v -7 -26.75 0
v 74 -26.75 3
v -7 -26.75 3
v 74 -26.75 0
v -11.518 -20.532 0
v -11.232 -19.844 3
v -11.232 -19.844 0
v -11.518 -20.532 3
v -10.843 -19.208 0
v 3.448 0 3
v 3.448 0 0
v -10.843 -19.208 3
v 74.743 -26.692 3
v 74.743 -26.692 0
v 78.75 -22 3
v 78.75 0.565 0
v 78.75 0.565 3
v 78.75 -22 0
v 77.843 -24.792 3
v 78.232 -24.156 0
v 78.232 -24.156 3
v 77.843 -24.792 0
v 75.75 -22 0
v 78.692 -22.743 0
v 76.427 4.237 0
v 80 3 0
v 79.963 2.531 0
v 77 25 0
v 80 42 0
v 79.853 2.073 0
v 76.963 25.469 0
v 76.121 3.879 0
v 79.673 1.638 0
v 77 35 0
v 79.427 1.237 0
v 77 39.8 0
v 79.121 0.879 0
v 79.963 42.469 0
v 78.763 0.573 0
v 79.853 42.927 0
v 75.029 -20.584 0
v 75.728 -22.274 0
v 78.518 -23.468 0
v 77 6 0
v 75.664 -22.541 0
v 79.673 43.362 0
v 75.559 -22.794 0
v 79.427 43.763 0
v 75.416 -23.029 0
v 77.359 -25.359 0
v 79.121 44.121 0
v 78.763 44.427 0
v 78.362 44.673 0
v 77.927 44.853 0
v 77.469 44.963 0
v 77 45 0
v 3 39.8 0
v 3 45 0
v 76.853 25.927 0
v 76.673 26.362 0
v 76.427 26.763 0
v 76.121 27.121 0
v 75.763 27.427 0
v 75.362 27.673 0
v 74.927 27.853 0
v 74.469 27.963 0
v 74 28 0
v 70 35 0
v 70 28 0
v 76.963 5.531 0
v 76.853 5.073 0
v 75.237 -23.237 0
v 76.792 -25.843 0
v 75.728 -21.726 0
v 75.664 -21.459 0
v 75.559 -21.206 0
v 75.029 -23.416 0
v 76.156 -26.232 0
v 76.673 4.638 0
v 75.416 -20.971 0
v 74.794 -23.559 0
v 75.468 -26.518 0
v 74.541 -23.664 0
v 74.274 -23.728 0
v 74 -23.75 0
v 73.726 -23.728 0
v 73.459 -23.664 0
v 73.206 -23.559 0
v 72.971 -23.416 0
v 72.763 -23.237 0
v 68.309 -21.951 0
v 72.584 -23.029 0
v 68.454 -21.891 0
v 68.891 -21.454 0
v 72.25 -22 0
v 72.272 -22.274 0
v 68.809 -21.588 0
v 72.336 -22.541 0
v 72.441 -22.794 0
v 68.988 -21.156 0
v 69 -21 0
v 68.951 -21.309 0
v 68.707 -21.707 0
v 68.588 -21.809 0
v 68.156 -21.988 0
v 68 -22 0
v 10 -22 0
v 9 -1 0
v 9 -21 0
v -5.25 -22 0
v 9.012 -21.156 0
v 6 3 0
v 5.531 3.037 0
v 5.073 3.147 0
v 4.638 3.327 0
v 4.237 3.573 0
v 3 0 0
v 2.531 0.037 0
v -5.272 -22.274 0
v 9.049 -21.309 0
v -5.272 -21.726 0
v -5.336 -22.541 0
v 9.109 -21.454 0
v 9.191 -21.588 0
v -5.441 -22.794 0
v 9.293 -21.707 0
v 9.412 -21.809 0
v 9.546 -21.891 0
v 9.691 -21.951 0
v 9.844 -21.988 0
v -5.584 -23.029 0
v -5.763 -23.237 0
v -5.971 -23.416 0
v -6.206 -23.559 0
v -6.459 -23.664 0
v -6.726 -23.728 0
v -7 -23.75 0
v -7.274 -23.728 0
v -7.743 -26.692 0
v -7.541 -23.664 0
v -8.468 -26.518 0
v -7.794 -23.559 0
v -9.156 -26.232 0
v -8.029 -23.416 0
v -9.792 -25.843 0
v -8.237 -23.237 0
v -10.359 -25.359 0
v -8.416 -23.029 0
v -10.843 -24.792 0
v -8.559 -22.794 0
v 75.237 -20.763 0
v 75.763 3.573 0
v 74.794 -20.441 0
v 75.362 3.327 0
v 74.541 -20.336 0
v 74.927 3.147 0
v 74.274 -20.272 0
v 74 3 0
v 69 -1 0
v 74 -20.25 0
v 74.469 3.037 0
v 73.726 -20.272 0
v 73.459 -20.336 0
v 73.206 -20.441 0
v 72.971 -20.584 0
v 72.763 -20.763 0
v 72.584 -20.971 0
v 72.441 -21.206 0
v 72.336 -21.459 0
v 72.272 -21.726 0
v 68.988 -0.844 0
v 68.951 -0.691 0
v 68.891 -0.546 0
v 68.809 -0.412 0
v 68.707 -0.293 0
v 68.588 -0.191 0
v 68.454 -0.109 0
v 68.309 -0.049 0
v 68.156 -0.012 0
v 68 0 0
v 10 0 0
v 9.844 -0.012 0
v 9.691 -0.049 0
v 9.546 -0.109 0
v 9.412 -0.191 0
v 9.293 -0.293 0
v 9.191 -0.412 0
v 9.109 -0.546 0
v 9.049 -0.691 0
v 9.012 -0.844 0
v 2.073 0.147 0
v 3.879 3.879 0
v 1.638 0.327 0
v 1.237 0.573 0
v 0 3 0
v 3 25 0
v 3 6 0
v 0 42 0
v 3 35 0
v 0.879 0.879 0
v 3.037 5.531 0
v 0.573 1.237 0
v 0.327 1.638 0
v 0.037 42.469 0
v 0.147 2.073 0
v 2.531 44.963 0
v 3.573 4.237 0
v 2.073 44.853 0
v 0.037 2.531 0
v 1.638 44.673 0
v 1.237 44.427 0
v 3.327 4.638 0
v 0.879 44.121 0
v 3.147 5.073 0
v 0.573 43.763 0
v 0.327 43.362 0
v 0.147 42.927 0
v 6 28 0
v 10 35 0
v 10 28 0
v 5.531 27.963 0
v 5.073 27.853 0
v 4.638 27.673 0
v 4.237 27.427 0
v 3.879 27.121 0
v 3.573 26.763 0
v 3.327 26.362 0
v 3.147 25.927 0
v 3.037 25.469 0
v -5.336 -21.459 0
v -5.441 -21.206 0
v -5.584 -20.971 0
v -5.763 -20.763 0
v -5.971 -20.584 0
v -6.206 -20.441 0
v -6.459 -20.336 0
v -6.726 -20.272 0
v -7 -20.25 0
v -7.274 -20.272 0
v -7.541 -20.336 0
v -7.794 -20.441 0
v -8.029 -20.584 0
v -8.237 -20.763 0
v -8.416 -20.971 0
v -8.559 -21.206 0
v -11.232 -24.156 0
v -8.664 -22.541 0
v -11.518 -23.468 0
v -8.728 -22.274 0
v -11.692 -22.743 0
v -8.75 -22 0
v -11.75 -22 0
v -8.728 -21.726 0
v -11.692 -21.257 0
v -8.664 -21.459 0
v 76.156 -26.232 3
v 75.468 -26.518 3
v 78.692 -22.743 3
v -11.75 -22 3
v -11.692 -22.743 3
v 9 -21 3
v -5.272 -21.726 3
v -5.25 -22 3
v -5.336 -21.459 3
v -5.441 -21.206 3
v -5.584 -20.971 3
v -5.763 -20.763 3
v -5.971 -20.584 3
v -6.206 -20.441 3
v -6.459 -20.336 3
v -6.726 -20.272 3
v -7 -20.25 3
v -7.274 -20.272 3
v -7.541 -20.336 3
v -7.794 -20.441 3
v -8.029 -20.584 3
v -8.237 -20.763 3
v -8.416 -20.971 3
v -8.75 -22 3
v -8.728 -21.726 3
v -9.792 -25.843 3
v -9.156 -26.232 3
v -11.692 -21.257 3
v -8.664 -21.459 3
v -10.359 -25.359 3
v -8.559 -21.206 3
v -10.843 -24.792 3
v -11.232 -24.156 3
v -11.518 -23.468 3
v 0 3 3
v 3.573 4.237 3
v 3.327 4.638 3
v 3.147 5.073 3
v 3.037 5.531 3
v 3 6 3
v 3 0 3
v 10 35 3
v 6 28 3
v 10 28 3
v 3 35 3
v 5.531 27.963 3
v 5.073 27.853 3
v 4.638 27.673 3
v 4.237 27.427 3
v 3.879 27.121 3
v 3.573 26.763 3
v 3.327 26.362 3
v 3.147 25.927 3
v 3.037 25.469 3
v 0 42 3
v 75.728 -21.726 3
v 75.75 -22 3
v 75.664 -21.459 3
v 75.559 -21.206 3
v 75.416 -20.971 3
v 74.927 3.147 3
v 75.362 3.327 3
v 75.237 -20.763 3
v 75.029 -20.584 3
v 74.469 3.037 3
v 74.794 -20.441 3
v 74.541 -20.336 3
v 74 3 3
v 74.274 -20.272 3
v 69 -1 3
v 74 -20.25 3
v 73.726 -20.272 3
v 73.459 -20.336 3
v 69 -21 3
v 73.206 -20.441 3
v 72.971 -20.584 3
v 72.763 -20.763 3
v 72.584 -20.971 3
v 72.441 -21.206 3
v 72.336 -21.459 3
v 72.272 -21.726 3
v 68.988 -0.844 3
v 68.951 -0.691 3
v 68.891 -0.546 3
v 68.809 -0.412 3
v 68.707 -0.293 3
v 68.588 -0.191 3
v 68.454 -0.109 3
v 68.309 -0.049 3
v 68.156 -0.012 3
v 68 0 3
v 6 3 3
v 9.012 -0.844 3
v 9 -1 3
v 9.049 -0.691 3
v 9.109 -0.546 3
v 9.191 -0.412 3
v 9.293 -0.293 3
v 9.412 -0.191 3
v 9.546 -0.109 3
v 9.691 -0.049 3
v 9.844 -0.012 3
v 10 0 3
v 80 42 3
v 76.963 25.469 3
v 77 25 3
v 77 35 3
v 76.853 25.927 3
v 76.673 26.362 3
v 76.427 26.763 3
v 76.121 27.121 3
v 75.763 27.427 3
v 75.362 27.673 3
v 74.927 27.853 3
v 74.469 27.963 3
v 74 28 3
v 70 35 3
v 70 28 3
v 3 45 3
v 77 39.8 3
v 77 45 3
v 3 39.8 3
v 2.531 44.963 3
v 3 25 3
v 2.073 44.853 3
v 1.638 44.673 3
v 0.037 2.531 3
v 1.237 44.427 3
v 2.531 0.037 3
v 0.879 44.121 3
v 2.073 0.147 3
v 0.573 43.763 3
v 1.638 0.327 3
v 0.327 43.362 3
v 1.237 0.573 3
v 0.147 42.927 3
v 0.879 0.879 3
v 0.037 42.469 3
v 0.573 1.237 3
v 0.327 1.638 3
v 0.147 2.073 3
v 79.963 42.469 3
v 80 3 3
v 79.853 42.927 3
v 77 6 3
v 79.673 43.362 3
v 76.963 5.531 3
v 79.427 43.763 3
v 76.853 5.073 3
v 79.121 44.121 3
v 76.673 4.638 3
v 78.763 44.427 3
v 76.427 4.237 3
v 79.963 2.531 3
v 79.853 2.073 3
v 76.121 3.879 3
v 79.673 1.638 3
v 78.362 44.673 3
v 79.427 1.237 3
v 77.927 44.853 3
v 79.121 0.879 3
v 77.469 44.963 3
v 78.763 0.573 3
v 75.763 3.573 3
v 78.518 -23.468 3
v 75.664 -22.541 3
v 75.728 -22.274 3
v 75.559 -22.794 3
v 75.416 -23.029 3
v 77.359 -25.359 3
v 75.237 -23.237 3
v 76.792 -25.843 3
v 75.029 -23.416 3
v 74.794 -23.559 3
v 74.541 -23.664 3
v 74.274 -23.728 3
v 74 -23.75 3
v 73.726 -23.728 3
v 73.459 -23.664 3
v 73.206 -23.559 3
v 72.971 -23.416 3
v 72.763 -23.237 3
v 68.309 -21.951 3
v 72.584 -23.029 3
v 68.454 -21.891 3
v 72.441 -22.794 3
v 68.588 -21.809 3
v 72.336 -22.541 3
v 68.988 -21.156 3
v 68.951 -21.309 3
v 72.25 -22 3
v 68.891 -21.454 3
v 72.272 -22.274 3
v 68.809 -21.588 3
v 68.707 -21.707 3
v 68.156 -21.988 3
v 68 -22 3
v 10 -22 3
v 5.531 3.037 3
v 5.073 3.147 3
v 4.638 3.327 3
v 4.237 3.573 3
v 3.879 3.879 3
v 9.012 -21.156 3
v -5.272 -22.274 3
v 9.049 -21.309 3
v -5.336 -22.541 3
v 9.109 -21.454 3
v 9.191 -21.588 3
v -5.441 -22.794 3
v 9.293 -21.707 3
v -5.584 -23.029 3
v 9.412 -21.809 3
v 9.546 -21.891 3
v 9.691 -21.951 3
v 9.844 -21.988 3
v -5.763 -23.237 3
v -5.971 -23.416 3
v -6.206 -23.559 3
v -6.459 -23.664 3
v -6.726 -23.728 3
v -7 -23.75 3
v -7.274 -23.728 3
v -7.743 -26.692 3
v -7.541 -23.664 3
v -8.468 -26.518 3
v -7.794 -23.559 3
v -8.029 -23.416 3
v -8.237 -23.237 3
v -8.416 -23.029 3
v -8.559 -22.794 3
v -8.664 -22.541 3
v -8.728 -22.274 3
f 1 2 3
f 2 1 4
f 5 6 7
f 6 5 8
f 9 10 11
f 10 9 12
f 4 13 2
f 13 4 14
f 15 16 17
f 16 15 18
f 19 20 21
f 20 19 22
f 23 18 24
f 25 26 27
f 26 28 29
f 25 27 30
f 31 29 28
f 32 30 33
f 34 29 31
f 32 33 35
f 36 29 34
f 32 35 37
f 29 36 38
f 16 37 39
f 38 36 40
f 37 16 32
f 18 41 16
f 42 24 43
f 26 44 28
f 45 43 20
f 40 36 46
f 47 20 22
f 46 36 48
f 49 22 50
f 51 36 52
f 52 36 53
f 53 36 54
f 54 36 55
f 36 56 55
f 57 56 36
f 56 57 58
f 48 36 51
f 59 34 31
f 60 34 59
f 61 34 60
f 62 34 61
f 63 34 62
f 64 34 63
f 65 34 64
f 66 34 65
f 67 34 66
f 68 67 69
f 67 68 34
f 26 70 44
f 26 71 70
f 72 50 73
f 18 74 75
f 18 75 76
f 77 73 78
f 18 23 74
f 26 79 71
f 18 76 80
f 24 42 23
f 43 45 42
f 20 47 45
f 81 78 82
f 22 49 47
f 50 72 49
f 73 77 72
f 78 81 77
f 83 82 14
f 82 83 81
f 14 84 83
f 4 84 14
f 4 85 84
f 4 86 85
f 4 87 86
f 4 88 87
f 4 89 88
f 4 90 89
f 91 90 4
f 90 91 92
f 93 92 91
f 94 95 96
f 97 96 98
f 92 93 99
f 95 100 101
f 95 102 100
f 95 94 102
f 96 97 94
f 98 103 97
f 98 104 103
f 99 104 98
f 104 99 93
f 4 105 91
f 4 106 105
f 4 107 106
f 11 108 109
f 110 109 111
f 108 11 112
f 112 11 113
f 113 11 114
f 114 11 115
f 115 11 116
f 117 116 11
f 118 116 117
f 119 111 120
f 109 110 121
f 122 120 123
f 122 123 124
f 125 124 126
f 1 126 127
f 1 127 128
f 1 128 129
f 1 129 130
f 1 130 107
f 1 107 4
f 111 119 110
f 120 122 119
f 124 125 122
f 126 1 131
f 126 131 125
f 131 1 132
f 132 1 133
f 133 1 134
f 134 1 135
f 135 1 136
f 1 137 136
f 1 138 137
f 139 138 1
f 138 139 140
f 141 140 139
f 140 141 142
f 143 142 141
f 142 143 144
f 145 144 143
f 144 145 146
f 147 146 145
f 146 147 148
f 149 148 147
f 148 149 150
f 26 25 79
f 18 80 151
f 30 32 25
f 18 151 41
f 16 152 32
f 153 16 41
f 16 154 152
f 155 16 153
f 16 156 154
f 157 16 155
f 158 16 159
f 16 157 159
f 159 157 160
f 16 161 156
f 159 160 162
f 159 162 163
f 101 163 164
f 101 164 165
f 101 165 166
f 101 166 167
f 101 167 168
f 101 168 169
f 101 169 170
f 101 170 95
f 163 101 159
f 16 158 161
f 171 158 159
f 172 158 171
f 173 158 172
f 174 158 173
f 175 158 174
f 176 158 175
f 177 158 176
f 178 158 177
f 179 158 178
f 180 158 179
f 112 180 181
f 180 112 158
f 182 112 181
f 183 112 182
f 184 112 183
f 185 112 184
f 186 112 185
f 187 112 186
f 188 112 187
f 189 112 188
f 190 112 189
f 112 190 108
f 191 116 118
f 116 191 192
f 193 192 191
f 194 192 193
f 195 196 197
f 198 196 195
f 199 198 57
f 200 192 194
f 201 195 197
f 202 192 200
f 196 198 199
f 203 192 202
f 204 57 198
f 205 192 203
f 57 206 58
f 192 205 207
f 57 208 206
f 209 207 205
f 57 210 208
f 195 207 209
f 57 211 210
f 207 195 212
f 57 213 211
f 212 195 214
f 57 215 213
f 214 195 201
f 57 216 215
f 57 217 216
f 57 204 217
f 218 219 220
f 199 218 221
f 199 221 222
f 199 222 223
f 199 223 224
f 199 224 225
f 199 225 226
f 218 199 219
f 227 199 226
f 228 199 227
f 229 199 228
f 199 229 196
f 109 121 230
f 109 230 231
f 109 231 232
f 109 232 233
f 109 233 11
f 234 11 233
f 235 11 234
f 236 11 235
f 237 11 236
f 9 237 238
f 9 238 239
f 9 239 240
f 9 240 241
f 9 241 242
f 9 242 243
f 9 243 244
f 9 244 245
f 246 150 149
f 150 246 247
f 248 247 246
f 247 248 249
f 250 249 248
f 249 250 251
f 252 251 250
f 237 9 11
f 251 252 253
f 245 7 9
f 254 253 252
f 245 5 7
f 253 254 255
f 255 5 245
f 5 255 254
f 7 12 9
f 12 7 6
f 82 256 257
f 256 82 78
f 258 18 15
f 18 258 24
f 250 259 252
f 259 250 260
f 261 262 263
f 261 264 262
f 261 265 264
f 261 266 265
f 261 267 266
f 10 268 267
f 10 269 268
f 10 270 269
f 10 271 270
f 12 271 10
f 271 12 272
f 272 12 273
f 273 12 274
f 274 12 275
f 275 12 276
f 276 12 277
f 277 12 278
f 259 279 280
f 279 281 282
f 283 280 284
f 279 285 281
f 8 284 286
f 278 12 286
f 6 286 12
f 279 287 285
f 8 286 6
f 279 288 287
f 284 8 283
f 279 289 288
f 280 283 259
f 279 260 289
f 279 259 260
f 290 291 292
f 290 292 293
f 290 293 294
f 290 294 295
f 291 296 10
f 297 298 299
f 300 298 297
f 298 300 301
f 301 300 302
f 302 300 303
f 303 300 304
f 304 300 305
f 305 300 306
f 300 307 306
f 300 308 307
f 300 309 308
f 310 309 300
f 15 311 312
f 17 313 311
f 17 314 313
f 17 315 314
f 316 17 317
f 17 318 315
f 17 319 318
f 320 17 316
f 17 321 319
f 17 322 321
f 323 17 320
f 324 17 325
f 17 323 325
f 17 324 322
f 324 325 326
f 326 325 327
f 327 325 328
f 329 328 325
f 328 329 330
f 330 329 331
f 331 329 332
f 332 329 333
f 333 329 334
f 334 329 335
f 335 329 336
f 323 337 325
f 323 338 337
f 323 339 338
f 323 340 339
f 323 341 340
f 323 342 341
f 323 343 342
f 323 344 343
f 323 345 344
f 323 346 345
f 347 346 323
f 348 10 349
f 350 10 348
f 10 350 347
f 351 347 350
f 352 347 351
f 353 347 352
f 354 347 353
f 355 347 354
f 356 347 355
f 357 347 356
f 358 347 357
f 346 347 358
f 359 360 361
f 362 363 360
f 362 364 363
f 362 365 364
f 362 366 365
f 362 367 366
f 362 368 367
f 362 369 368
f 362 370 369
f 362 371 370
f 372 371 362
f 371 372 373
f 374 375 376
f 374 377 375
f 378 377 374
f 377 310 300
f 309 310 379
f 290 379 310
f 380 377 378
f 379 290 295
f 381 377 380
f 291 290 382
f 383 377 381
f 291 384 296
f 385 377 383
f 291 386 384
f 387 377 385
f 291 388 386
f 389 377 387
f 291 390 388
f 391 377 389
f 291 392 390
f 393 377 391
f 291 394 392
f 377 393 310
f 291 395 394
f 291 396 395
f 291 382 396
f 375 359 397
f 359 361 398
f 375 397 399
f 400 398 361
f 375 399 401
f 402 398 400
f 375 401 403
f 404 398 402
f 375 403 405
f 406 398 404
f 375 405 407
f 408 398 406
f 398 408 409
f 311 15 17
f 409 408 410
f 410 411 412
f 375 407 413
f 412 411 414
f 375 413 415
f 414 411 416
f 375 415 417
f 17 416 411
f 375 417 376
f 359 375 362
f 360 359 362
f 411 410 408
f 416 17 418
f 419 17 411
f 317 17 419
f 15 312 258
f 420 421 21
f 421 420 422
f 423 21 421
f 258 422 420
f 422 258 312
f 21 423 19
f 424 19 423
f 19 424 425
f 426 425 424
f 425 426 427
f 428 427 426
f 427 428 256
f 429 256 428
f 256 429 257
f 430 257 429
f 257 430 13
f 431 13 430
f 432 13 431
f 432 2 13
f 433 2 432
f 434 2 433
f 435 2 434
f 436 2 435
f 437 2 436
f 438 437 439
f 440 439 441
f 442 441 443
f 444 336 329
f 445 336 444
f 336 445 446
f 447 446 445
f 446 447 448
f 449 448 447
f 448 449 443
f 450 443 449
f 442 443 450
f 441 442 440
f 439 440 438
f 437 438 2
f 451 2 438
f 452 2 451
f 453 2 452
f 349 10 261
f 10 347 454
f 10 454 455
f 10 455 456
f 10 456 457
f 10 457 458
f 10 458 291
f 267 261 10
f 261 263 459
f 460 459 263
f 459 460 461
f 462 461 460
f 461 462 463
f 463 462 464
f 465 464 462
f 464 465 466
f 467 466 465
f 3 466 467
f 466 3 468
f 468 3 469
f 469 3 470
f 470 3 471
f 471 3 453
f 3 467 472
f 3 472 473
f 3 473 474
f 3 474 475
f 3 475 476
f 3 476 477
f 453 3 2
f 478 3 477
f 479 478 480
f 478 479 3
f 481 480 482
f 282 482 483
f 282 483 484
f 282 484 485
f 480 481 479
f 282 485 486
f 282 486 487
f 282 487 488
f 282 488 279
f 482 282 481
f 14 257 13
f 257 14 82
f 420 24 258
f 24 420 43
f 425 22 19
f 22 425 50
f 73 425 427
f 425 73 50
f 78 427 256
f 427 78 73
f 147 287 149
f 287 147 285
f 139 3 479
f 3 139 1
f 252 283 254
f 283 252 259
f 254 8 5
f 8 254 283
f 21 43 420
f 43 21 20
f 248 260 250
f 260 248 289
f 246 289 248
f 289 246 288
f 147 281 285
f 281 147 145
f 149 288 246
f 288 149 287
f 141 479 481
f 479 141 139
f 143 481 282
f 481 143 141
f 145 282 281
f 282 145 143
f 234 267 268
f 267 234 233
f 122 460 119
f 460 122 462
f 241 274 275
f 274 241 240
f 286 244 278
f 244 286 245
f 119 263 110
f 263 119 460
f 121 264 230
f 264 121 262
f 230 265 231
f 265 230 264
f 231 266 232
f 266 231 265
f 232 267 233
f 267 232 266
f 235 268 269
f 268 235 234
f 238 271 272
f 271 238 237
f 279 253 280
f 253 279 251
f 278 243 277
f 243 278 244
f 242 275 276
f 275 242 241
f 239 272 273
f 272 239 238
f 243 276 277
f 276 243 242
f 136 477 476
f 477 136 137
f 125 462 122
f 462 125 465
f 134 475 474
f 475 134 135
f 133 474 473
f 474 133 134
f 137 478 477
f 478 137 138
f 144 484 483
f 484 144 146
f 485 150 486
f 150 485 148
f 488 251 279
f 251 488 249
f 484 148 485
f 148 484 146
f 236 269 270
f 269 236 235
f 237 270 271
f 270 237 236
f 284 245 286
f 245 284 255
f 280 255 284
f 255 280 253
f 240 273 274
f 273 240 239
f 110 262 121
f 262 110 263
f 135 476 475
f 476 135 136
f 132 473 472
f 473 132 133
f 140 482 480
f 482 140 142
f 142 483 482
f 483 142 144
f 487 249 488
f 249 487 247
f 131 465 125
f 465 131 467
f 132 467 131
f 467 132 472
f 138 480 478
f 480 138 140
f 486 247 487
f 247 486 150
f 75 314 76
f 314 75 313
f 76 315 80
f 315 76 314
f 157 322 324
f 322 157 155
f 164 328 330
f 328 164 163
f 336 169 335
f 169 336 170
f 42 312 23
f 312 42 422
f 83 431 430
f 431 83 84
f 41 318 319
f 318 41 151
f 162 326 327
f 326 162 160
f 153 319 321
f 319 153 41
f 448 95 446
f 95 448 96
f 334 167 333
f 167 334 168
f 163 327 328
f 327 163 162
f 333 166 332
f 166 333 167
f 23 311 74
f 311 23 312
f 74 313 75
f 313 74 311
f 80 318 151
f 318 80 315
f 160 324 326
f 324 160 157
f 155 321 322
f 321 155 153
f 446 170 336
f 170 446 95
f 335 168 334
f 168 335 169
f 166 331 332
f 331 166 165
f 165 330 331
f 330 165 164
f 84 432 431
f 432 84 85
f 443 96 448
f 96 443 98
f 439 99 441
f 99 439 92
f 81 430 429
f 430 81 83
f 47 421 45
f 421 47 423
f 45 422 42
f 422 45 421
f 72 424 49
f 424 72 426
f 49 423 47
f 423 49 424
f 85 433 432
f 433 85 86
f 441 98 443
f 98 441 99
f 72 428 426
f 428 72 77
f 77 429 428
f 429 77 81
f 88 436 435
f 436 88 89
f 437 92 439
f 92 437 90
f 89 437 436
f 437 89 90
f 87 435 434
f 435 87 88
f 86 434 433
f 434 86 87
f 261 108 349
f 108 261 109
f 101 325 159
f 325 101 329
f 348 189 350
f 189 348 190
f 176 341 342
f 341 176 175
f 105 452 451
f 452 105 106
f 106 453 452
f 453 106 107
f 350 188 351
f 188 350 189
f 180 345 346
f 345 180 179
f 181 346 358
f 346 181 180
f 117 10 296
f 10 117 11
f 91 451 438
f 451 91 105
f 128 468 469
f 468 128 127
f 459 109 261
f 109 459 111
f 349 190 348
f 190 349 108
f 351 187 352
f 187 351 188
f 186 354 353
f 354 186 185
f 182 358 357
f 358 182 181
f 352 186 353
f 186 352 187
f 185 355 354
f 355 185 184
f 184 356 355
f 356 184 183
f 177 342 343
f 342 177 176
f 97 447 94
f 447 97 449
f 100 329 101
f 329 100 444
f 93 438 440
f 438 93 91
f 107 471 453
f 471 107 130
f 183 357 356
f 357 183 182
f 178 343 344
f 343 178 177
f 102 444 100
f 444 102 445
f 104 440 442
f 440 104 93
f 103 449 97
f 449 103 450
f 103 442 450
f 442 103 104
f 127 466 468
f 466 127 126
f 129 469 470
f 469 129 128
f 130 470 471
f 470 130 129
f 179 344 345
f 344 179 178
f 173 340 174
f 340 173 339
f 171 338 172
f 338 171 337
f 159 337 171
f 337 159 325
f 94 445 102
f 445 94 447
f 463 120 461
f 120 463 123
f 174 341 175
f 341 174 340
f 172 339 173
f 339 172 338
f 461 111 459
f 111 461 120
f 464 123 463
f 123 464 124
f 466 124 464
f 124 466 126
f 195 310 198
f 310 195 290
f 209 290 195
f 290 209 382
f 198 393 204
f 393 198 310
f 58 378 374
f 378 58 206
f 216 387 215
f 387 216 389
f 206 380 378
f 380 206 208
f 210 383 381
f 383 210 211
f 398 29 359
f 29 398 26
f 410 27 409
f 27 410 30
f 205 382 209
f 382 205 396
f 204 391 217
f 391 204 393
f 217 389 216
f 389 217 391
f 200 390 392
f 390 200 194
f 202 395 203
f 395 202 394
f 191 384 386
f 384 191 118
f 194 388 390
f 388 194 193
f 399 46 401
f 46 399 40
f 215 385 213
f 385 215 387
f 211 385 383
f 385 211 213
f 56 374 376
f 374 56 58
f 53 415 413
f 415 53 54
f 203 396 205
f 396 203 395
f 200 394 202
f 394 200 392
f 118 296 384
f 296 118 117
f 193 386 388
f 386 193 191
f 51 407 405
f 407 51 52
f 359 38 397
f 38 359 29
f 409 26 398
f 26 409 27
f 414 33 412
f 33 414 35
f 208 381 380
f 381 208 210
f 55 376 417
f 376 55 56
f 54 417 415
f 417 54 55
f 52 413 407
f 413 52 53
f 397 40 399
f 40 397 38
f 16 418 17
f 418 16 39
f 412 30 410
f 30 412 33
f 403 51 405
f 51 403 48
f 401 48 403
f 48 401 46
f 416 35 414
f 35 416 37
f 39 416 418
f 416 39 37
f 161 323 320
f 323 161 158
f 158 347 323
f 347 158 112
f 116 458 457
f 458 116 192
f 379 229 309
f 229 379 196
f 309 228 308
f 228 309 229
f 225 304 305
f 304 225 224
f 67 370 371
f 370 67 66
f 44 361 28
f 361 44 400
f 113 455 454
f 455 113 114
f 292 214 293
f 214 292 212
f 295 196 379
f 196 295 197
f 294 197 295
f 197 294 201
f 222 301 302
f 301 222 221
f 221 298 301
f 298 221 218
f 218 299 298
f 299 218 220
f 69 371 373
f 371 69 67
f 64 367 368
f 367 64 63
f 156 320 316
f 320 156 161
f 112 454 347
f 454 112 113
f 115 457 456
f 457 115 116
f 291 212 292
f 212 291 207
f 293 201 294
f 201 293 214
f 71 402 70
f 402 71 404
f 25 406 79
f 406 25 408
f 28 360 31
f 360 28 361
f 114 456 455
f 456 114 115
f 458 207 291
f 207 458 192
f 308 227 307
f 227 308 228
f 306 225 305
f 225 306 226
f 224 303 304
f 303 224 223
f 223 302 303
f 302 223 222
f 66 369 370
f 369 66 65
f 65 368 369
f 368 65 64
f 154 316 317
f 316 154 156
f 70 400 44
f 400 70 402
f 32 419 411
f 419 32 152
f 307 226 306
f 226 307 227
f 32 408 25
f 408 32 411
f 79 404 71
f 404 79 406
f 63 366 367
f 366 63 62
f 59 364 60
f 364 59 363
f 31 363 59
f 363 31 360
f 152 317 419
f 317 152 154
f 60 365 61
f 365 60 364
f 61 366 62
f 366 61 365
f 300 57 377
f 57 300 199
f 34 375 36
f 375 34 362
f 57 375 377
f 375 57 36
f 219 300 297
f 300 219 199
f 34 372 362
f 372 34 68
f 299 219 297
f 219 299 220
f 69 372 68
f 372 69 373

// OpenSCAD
/**
 * Clamp for spool holder
 */
$fn = 40;
wall = 3;
clamp_x = 74.0;
clamp_y = 45;
clamp_z = 3;
clamp_r = 3;


mount_c2c = 81;
mount_z = 22;
mount_r = 3.5 / 2;

module rcube (x, y, z, r)
{
    hull () {
        translate ([r, r, 0])
        cylinder (r = r, h = z);
        translate ([x - r, r, 0])
        cylinder (r = r, h = z);
        translate ([r, y - r, 0])
        cylinder (r = r, h = z);
        translate ([x - r, y - r, 0])
        cylinder (r = r, h = z);        
    }
}


module m3 () {
    
    cylinder (r = 3.5/2, h = 2 * wall);
}

module relief (h, th) 
{
    hull () {
        cylinder (r = 2, h = th);
        translate ([0, h - 4, 0])
        cylinder (r = 2, h = th);
    }     
}

module cutout () {
    for (i = [0 : 6]) {
        rotate ([90, 0, 0])
        translate ([i * 10, 0, 0])
        relief (20, 4);
    }
}

module cutout2 () {
    for (i = [0 : 5]) {
        rotate ([90, 0, 0])
        translate ([i * 10, 0, 0])
        relief (15, 4);
    }
}

module clamp () {
    
    difference () {
        rcube (clamp_x + 2 * wall, clamp_y, clamp_z, clamp_r);
        translate ([wall, wall, 0])
        rcube (clamp_x, clamp_y - 20, clamp_z, clamp_r);
        translate ([wall, clamp_y -10, 0])
        cube ([clamp_x, 4.8, clamp_z]);
        translate ([((clamp_x + 2 * wall) - 60) / 2, clamp_y - 18, 0])
        cube ([60, 10, clamp_z]);
    }
}

module mount () {
    
    difference () {
        hull () {
            translate ([mount_c2c - clamp_x + mount_r + wall, 
                        mount_r, 0])
            cube ([clamp_x, mount_z, wall]);
            cylinder (r = mount_r + wall, h = wall);
            translate ([mount_c2c, 0, 0])
            cylinder (r = mount_r + wall, h = wall);
        }
        // Remove screw holes
        cylinder (r = mount_r, h = wall);
        translate ([mount_c2c, 0, 0])
        cylinder (r = mount_r, h = wall);
        
        // Remove extra space
        translate ([16, 0, 0])
        rcube (60, mount_z, wall, 1);
    }
}

clamp ();
translate ([-(mount_c2c - clamp_x), -mount_z, 0])
mount ();
